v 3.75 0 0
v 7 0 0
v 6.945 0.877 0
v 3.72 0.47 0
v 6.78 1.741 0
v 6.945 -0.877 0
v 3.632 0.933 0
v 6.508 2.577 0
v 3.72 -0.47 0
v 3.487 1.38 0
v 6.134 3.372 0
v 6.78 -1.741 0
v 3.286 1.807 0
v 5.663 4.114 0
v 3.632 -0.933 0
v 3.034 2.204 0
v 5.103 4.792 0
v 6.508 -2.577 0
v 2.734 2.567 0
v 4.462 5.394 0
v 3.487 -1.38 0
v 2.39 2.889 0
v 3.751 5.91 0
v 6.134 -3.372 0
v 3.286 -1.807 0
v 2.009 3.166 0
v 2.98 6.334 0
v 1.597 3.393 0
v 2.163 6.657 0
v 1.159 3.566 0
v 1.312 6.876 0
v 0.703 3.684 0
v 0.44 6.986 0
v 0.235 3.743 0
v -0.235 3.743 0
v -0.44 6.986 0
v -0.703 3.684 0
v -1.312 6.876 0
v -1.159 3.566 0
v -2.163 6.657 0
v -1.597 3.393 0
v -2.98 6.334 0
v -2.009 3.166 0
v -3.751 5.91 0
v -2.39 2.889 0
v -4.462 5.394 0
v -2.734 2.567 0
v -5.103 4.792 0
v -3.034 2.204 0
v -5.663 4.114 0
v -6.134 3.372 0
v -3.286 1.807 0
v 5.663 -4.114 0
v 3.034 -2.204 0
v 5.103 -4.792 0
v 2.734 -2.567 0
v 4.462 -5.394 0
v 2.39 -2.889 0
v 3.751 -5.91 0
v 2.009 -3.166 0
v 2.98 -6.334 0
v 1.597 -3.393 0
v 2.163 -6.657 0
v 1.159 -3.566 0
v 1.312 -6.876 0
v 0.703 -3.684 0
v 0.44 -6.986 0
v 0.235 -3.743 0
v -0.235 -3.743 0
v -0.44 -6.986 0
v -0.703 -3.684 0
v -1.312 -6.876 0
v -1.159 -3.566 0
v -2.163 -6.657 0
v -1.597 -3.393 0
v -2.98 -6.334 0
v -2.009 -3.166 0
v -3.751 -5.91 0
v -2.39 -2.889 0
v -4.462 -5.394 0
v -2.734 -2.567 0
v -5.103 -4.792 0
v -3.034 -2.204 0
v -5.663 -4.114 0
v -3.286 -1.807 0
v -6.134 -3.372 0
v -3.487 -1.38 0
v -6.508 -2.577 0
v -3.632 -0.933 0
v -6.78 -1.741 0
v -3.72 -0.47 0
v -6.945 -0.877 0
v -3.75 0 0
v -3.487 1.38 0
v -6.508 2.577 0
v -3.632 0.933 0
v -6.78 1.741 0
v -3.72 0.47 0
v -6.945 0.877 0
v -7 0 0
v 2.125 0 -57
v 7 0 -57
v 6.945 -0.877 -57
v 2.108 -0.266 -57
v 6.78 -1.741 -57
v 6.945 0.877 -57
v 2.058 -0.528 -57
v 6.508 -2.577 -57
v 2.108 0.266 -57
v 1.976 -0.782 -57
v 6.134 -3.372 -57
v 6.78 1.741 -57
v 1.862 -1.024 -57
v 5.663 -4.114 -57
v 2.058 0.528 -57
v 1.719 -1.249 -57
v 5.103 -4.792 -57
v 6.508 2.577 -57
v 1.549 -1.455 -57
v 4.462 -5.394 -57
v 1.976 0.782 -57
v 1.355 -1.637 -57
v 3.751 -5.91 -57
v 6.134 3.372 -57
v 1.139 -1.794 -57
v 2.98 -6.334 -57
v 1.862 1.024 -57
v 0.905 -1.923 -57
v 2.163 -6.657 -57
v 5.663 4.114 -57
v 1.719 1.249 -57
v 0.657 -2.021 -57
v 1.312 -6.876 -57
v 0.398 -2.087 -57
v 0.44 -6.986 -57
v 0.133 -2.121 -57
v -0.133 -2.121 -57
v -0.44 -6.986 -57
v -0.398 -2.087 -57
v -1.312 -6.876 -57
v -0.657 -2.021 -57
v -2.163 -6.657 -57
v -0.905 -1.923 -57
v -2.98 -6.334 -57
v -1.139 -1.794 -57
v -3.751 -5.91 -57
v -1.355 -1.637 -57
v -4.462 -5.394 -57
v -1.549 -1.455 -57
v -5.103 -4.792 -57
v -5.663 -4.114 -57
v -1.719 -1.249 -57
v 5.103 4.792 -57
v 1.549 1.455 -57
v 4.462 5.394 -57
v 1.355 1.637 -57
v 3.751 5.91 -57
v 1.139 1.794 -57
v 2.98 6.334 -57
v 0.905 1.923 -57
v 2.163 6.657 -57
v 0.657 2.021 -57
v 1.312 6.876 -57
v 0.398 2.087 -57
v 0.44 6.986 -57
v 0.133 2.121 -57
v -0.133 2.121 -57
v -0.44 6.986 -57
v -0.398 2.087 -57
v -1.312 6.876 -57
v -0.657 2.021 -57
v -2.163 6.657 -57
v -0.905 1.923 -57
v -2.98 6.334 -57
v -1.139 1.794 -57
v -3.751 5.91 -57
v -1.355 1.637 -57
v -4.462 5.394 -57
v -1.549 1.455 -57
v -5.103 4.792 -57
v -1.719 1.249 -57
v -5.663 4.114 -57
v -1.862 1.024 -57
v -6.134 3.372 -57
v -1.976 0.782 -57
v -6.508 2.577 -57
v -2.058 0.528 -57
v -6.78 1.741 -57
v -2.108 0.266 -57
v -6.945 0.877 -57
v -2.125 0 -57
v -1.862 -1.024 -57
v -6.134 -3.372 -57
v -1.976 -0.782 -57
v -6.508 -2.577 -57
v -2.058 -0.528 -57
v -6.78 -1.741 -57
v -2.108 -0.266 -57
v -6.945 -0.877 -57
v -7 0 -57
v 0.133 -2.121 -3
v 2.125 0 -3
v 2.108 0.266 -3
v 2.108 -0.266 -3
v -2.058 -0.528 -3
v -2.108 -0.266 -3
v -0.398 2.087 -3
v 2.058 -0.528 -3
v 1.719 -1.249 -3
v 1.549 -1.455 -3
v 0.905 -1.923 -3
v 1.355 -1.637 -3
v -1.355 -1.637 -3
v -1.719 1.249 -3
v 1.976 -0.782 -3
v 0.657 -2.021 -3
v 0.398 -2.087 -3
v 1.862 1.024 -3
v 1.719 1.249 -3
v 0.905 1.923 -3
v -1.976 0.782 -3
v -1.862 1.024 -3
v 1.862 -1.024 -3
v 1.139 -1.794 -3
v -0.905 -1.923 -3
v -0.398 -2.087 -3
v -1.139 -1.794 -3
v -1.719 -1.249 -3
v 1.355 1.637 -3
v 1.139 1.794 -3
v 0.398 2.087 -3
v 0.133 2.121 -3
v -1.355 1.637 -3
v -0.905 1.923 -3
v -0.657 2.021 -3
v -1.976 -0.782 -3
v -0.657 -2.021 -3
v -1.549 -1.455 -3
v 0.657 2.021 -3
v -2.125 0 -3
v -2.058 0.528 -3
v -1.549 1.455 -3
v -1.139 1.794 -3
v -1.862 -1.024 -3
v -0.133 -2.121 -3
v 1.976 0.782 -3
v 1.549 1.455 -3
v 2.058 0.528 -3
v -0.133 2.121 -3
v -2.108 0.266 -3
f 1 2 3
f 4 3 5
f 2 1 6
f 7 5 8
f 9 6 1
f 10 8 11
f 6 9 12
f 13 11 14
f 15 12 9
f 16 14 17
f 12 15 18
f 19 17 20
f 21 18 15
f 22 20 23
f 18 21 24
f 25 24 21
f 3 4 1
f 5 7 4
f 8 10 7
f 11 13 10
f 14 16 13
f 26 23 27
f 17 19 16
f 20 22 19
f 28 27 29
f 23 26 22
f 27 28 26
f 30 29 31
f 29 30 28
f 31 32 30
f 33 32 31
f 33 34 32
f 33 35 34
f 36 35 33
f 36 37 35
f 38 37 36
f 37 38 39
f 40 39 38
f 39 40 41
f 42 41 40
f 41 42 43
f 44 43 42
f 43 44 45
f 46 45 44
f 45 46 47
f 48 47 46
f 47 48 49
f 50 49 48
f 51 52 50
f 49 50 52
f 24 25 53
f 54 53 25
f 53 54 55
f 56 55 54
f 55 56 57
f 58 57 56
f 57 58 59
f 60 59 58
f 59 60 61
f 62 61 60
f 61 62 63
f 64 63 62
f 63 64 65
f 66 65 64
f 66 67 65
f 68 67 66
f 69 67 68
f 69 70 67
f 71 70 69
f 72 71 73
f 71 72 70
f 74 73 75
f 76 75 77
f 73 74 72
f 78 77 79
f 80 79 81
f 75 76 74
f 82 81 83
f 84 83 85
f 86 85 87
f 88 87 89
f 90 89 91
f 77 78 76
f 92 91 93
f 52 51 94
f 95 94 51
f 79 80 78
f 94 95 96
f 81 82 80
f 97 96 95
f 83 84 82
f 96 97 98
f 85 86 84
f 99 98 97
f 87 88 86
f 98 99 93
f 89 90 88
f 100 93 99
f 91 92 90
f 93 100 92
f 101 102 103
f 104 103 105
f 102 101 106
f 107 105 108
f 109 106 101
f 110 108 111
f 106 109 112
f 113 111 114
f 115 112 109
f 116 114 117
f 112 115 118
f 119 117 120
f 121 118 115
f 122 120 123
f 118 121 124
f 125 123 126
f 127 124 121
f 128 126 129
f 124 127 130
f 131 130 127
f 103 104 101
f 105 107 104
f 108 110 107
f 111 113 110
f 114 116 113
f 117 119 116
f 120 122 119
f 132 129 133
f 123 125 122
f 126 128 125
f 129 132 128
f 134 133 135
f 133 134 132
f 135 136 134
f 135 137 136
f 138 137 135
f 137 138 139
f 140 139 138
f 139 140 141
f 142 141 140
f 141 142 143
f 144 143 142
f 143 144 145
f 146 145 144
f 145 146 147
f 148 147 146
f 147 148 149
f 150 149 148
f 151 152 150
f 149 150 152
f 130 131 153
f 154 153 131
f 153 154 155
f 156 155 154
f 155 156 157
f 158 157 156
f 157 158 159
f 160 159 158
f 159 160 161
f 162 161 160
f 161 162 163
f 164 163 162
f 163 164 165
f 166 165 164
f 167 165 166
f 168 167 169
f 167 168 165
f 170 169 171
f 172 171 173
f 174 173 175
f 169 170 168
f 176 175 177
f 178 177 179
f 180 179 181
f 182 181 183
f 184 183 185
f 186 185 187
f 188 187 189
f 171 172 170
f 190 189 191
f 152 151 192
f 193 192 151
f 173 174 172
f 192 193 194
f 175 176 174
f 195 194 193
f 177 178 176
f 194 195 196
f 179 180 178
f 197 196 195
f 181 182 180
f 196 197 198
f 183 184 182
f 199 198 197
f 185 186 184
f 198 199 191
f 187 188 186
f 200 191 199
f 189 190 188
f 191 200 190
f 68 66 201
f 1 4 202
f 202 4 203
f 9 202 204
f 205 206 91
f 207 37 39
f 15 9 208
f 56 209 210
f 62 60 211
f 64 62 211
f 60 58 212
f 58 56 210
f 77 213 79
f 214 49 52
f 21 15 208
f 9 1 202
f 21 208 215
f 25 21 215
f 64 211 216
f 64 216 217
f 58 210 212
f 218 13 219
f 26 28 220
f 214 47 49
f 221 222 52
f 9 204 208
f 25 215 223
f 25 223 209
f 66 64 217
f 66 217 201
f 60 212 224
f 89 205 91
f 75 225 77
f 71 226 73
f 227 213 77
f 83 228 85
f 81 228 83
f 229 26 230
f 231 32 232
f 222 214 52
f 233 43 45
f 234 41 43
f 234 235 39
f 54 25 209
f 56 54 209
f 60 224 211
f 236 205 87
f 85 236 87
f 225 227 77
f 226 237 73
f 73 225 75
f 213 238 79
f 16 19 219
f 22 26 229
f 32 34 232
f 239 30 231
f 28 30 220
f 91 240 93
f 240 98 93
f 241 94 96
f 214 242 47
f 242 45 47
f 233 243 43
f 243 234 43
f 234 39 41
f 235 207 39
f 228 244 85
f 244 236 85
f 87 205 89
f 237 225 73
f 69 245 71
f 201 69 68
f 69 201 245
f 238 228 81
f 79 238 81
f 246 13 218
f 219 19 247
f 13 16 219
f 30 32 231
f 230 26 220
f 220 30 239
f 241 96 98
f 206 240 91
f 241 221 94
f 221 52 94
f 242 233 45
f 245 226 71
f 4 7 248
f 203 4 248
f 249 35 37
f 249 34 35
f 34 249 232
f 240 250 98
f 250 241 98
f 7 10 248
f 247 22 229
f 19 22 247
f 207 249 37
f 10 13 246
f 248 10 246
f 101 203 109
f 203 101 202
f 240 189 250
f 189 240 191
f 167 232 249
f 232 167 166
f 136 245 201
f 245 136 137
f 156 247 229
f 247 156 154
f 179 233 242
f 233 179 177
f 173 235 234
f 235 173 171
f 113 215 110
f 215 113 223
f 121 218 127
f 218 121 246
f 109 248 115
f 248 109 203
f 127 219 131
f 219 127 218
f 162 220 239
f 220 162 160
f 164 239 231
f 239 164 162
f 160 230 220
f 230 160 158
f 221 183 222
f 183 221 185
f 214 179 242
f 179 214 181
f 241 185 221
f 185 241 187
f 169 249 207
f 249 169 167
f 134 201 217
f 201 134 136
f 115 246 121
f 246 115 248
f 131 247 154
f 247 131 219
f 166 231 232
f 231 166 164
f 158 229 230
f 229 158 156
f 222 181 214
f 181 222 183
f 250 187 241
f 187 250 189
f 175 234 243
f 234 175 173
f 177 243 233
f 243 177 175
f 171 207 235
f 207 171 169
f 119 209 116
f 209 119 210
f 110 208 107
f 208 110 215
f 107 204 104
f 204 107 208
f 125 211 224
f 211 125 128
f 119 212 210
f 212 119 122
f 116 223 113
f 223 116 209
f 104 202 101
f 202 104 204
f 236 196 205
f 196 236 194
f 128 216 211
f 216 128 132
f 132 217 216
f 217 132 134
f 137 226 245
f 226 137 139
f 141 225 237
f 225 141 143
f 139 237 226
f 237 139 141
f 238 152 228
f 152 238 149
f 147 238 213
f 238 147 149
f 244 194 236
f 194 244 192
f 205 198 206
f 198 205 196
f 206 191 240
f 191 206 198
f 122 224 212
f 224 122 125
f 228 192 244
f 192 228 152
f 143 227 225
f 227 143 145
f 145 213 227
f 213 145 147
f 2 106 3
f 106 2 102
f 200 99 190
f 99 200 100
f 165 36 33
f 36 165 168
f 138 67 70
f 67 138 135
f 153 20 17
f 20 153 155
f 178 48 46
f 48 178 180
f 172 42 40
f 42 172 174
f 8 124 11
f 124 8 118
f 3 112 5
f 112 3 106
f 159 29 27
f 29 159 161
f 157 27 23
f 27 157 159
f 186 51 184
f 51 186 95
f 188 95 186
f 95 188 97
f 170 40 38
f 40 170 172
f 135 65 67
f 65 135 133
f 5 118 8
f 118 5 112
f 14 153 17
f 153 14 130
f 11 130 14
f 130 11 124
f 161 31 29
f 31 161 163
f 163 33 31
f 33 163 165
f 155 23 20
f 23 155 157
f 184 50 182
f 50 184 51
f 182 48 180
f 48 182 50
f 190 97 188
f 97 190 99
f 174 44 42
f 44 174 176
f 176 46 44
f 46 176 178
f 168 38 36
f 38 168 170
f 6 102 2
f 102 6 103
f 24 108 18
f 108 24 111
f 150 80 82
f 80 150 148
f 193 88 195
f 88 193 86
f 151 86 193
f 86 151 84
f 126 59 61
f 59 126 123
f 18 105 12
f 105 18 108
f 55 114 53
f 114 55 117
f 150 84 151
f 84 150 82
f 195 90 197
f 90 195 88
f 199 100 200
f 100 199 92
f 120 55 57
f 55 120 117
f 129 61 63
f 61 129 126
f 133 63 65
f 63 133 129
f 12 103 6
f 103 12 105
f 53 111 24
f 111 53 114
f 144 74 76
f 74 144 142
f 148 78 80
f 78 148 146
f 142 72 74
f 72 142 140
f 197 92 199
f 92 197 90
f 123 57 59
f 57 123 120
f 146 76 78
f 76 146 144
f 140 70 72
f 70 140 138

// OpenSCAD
$fn = 50;


difference() {
	union() {
		translate(v = [0, 0, -57.0000000000]) {
			cylinder(h = 57, r = 7.0000000000);
		}
		cylinder(h = 0, r = 10.0000000000);
	}
	union() {
		translate(v = [0, 0, 0]) {
			rotate(a = [0, 0, 0]) {
				difference() {
					union() {
						#translate(v = [0, 0, -57.0000000000]) {
							cylinder(h = 57, r = 2.0000000000);
						}
						#translate(v = [0, 0, -3]) {
							cylinder(h = 3, r1 = 2.1250000000, r2 = 3.7500000000);
						}
						#translate(v = [0, 0, -57.0000000000]) {
							cylinder(h = 57, r = 2.1250000000);
						}
						#translate(v = [0, 0, -57.0000000000]) {
							cylinder(h = 57, r = 2.0000000000);
						}
					}
					union();
				}
			}
		}
	}
}
